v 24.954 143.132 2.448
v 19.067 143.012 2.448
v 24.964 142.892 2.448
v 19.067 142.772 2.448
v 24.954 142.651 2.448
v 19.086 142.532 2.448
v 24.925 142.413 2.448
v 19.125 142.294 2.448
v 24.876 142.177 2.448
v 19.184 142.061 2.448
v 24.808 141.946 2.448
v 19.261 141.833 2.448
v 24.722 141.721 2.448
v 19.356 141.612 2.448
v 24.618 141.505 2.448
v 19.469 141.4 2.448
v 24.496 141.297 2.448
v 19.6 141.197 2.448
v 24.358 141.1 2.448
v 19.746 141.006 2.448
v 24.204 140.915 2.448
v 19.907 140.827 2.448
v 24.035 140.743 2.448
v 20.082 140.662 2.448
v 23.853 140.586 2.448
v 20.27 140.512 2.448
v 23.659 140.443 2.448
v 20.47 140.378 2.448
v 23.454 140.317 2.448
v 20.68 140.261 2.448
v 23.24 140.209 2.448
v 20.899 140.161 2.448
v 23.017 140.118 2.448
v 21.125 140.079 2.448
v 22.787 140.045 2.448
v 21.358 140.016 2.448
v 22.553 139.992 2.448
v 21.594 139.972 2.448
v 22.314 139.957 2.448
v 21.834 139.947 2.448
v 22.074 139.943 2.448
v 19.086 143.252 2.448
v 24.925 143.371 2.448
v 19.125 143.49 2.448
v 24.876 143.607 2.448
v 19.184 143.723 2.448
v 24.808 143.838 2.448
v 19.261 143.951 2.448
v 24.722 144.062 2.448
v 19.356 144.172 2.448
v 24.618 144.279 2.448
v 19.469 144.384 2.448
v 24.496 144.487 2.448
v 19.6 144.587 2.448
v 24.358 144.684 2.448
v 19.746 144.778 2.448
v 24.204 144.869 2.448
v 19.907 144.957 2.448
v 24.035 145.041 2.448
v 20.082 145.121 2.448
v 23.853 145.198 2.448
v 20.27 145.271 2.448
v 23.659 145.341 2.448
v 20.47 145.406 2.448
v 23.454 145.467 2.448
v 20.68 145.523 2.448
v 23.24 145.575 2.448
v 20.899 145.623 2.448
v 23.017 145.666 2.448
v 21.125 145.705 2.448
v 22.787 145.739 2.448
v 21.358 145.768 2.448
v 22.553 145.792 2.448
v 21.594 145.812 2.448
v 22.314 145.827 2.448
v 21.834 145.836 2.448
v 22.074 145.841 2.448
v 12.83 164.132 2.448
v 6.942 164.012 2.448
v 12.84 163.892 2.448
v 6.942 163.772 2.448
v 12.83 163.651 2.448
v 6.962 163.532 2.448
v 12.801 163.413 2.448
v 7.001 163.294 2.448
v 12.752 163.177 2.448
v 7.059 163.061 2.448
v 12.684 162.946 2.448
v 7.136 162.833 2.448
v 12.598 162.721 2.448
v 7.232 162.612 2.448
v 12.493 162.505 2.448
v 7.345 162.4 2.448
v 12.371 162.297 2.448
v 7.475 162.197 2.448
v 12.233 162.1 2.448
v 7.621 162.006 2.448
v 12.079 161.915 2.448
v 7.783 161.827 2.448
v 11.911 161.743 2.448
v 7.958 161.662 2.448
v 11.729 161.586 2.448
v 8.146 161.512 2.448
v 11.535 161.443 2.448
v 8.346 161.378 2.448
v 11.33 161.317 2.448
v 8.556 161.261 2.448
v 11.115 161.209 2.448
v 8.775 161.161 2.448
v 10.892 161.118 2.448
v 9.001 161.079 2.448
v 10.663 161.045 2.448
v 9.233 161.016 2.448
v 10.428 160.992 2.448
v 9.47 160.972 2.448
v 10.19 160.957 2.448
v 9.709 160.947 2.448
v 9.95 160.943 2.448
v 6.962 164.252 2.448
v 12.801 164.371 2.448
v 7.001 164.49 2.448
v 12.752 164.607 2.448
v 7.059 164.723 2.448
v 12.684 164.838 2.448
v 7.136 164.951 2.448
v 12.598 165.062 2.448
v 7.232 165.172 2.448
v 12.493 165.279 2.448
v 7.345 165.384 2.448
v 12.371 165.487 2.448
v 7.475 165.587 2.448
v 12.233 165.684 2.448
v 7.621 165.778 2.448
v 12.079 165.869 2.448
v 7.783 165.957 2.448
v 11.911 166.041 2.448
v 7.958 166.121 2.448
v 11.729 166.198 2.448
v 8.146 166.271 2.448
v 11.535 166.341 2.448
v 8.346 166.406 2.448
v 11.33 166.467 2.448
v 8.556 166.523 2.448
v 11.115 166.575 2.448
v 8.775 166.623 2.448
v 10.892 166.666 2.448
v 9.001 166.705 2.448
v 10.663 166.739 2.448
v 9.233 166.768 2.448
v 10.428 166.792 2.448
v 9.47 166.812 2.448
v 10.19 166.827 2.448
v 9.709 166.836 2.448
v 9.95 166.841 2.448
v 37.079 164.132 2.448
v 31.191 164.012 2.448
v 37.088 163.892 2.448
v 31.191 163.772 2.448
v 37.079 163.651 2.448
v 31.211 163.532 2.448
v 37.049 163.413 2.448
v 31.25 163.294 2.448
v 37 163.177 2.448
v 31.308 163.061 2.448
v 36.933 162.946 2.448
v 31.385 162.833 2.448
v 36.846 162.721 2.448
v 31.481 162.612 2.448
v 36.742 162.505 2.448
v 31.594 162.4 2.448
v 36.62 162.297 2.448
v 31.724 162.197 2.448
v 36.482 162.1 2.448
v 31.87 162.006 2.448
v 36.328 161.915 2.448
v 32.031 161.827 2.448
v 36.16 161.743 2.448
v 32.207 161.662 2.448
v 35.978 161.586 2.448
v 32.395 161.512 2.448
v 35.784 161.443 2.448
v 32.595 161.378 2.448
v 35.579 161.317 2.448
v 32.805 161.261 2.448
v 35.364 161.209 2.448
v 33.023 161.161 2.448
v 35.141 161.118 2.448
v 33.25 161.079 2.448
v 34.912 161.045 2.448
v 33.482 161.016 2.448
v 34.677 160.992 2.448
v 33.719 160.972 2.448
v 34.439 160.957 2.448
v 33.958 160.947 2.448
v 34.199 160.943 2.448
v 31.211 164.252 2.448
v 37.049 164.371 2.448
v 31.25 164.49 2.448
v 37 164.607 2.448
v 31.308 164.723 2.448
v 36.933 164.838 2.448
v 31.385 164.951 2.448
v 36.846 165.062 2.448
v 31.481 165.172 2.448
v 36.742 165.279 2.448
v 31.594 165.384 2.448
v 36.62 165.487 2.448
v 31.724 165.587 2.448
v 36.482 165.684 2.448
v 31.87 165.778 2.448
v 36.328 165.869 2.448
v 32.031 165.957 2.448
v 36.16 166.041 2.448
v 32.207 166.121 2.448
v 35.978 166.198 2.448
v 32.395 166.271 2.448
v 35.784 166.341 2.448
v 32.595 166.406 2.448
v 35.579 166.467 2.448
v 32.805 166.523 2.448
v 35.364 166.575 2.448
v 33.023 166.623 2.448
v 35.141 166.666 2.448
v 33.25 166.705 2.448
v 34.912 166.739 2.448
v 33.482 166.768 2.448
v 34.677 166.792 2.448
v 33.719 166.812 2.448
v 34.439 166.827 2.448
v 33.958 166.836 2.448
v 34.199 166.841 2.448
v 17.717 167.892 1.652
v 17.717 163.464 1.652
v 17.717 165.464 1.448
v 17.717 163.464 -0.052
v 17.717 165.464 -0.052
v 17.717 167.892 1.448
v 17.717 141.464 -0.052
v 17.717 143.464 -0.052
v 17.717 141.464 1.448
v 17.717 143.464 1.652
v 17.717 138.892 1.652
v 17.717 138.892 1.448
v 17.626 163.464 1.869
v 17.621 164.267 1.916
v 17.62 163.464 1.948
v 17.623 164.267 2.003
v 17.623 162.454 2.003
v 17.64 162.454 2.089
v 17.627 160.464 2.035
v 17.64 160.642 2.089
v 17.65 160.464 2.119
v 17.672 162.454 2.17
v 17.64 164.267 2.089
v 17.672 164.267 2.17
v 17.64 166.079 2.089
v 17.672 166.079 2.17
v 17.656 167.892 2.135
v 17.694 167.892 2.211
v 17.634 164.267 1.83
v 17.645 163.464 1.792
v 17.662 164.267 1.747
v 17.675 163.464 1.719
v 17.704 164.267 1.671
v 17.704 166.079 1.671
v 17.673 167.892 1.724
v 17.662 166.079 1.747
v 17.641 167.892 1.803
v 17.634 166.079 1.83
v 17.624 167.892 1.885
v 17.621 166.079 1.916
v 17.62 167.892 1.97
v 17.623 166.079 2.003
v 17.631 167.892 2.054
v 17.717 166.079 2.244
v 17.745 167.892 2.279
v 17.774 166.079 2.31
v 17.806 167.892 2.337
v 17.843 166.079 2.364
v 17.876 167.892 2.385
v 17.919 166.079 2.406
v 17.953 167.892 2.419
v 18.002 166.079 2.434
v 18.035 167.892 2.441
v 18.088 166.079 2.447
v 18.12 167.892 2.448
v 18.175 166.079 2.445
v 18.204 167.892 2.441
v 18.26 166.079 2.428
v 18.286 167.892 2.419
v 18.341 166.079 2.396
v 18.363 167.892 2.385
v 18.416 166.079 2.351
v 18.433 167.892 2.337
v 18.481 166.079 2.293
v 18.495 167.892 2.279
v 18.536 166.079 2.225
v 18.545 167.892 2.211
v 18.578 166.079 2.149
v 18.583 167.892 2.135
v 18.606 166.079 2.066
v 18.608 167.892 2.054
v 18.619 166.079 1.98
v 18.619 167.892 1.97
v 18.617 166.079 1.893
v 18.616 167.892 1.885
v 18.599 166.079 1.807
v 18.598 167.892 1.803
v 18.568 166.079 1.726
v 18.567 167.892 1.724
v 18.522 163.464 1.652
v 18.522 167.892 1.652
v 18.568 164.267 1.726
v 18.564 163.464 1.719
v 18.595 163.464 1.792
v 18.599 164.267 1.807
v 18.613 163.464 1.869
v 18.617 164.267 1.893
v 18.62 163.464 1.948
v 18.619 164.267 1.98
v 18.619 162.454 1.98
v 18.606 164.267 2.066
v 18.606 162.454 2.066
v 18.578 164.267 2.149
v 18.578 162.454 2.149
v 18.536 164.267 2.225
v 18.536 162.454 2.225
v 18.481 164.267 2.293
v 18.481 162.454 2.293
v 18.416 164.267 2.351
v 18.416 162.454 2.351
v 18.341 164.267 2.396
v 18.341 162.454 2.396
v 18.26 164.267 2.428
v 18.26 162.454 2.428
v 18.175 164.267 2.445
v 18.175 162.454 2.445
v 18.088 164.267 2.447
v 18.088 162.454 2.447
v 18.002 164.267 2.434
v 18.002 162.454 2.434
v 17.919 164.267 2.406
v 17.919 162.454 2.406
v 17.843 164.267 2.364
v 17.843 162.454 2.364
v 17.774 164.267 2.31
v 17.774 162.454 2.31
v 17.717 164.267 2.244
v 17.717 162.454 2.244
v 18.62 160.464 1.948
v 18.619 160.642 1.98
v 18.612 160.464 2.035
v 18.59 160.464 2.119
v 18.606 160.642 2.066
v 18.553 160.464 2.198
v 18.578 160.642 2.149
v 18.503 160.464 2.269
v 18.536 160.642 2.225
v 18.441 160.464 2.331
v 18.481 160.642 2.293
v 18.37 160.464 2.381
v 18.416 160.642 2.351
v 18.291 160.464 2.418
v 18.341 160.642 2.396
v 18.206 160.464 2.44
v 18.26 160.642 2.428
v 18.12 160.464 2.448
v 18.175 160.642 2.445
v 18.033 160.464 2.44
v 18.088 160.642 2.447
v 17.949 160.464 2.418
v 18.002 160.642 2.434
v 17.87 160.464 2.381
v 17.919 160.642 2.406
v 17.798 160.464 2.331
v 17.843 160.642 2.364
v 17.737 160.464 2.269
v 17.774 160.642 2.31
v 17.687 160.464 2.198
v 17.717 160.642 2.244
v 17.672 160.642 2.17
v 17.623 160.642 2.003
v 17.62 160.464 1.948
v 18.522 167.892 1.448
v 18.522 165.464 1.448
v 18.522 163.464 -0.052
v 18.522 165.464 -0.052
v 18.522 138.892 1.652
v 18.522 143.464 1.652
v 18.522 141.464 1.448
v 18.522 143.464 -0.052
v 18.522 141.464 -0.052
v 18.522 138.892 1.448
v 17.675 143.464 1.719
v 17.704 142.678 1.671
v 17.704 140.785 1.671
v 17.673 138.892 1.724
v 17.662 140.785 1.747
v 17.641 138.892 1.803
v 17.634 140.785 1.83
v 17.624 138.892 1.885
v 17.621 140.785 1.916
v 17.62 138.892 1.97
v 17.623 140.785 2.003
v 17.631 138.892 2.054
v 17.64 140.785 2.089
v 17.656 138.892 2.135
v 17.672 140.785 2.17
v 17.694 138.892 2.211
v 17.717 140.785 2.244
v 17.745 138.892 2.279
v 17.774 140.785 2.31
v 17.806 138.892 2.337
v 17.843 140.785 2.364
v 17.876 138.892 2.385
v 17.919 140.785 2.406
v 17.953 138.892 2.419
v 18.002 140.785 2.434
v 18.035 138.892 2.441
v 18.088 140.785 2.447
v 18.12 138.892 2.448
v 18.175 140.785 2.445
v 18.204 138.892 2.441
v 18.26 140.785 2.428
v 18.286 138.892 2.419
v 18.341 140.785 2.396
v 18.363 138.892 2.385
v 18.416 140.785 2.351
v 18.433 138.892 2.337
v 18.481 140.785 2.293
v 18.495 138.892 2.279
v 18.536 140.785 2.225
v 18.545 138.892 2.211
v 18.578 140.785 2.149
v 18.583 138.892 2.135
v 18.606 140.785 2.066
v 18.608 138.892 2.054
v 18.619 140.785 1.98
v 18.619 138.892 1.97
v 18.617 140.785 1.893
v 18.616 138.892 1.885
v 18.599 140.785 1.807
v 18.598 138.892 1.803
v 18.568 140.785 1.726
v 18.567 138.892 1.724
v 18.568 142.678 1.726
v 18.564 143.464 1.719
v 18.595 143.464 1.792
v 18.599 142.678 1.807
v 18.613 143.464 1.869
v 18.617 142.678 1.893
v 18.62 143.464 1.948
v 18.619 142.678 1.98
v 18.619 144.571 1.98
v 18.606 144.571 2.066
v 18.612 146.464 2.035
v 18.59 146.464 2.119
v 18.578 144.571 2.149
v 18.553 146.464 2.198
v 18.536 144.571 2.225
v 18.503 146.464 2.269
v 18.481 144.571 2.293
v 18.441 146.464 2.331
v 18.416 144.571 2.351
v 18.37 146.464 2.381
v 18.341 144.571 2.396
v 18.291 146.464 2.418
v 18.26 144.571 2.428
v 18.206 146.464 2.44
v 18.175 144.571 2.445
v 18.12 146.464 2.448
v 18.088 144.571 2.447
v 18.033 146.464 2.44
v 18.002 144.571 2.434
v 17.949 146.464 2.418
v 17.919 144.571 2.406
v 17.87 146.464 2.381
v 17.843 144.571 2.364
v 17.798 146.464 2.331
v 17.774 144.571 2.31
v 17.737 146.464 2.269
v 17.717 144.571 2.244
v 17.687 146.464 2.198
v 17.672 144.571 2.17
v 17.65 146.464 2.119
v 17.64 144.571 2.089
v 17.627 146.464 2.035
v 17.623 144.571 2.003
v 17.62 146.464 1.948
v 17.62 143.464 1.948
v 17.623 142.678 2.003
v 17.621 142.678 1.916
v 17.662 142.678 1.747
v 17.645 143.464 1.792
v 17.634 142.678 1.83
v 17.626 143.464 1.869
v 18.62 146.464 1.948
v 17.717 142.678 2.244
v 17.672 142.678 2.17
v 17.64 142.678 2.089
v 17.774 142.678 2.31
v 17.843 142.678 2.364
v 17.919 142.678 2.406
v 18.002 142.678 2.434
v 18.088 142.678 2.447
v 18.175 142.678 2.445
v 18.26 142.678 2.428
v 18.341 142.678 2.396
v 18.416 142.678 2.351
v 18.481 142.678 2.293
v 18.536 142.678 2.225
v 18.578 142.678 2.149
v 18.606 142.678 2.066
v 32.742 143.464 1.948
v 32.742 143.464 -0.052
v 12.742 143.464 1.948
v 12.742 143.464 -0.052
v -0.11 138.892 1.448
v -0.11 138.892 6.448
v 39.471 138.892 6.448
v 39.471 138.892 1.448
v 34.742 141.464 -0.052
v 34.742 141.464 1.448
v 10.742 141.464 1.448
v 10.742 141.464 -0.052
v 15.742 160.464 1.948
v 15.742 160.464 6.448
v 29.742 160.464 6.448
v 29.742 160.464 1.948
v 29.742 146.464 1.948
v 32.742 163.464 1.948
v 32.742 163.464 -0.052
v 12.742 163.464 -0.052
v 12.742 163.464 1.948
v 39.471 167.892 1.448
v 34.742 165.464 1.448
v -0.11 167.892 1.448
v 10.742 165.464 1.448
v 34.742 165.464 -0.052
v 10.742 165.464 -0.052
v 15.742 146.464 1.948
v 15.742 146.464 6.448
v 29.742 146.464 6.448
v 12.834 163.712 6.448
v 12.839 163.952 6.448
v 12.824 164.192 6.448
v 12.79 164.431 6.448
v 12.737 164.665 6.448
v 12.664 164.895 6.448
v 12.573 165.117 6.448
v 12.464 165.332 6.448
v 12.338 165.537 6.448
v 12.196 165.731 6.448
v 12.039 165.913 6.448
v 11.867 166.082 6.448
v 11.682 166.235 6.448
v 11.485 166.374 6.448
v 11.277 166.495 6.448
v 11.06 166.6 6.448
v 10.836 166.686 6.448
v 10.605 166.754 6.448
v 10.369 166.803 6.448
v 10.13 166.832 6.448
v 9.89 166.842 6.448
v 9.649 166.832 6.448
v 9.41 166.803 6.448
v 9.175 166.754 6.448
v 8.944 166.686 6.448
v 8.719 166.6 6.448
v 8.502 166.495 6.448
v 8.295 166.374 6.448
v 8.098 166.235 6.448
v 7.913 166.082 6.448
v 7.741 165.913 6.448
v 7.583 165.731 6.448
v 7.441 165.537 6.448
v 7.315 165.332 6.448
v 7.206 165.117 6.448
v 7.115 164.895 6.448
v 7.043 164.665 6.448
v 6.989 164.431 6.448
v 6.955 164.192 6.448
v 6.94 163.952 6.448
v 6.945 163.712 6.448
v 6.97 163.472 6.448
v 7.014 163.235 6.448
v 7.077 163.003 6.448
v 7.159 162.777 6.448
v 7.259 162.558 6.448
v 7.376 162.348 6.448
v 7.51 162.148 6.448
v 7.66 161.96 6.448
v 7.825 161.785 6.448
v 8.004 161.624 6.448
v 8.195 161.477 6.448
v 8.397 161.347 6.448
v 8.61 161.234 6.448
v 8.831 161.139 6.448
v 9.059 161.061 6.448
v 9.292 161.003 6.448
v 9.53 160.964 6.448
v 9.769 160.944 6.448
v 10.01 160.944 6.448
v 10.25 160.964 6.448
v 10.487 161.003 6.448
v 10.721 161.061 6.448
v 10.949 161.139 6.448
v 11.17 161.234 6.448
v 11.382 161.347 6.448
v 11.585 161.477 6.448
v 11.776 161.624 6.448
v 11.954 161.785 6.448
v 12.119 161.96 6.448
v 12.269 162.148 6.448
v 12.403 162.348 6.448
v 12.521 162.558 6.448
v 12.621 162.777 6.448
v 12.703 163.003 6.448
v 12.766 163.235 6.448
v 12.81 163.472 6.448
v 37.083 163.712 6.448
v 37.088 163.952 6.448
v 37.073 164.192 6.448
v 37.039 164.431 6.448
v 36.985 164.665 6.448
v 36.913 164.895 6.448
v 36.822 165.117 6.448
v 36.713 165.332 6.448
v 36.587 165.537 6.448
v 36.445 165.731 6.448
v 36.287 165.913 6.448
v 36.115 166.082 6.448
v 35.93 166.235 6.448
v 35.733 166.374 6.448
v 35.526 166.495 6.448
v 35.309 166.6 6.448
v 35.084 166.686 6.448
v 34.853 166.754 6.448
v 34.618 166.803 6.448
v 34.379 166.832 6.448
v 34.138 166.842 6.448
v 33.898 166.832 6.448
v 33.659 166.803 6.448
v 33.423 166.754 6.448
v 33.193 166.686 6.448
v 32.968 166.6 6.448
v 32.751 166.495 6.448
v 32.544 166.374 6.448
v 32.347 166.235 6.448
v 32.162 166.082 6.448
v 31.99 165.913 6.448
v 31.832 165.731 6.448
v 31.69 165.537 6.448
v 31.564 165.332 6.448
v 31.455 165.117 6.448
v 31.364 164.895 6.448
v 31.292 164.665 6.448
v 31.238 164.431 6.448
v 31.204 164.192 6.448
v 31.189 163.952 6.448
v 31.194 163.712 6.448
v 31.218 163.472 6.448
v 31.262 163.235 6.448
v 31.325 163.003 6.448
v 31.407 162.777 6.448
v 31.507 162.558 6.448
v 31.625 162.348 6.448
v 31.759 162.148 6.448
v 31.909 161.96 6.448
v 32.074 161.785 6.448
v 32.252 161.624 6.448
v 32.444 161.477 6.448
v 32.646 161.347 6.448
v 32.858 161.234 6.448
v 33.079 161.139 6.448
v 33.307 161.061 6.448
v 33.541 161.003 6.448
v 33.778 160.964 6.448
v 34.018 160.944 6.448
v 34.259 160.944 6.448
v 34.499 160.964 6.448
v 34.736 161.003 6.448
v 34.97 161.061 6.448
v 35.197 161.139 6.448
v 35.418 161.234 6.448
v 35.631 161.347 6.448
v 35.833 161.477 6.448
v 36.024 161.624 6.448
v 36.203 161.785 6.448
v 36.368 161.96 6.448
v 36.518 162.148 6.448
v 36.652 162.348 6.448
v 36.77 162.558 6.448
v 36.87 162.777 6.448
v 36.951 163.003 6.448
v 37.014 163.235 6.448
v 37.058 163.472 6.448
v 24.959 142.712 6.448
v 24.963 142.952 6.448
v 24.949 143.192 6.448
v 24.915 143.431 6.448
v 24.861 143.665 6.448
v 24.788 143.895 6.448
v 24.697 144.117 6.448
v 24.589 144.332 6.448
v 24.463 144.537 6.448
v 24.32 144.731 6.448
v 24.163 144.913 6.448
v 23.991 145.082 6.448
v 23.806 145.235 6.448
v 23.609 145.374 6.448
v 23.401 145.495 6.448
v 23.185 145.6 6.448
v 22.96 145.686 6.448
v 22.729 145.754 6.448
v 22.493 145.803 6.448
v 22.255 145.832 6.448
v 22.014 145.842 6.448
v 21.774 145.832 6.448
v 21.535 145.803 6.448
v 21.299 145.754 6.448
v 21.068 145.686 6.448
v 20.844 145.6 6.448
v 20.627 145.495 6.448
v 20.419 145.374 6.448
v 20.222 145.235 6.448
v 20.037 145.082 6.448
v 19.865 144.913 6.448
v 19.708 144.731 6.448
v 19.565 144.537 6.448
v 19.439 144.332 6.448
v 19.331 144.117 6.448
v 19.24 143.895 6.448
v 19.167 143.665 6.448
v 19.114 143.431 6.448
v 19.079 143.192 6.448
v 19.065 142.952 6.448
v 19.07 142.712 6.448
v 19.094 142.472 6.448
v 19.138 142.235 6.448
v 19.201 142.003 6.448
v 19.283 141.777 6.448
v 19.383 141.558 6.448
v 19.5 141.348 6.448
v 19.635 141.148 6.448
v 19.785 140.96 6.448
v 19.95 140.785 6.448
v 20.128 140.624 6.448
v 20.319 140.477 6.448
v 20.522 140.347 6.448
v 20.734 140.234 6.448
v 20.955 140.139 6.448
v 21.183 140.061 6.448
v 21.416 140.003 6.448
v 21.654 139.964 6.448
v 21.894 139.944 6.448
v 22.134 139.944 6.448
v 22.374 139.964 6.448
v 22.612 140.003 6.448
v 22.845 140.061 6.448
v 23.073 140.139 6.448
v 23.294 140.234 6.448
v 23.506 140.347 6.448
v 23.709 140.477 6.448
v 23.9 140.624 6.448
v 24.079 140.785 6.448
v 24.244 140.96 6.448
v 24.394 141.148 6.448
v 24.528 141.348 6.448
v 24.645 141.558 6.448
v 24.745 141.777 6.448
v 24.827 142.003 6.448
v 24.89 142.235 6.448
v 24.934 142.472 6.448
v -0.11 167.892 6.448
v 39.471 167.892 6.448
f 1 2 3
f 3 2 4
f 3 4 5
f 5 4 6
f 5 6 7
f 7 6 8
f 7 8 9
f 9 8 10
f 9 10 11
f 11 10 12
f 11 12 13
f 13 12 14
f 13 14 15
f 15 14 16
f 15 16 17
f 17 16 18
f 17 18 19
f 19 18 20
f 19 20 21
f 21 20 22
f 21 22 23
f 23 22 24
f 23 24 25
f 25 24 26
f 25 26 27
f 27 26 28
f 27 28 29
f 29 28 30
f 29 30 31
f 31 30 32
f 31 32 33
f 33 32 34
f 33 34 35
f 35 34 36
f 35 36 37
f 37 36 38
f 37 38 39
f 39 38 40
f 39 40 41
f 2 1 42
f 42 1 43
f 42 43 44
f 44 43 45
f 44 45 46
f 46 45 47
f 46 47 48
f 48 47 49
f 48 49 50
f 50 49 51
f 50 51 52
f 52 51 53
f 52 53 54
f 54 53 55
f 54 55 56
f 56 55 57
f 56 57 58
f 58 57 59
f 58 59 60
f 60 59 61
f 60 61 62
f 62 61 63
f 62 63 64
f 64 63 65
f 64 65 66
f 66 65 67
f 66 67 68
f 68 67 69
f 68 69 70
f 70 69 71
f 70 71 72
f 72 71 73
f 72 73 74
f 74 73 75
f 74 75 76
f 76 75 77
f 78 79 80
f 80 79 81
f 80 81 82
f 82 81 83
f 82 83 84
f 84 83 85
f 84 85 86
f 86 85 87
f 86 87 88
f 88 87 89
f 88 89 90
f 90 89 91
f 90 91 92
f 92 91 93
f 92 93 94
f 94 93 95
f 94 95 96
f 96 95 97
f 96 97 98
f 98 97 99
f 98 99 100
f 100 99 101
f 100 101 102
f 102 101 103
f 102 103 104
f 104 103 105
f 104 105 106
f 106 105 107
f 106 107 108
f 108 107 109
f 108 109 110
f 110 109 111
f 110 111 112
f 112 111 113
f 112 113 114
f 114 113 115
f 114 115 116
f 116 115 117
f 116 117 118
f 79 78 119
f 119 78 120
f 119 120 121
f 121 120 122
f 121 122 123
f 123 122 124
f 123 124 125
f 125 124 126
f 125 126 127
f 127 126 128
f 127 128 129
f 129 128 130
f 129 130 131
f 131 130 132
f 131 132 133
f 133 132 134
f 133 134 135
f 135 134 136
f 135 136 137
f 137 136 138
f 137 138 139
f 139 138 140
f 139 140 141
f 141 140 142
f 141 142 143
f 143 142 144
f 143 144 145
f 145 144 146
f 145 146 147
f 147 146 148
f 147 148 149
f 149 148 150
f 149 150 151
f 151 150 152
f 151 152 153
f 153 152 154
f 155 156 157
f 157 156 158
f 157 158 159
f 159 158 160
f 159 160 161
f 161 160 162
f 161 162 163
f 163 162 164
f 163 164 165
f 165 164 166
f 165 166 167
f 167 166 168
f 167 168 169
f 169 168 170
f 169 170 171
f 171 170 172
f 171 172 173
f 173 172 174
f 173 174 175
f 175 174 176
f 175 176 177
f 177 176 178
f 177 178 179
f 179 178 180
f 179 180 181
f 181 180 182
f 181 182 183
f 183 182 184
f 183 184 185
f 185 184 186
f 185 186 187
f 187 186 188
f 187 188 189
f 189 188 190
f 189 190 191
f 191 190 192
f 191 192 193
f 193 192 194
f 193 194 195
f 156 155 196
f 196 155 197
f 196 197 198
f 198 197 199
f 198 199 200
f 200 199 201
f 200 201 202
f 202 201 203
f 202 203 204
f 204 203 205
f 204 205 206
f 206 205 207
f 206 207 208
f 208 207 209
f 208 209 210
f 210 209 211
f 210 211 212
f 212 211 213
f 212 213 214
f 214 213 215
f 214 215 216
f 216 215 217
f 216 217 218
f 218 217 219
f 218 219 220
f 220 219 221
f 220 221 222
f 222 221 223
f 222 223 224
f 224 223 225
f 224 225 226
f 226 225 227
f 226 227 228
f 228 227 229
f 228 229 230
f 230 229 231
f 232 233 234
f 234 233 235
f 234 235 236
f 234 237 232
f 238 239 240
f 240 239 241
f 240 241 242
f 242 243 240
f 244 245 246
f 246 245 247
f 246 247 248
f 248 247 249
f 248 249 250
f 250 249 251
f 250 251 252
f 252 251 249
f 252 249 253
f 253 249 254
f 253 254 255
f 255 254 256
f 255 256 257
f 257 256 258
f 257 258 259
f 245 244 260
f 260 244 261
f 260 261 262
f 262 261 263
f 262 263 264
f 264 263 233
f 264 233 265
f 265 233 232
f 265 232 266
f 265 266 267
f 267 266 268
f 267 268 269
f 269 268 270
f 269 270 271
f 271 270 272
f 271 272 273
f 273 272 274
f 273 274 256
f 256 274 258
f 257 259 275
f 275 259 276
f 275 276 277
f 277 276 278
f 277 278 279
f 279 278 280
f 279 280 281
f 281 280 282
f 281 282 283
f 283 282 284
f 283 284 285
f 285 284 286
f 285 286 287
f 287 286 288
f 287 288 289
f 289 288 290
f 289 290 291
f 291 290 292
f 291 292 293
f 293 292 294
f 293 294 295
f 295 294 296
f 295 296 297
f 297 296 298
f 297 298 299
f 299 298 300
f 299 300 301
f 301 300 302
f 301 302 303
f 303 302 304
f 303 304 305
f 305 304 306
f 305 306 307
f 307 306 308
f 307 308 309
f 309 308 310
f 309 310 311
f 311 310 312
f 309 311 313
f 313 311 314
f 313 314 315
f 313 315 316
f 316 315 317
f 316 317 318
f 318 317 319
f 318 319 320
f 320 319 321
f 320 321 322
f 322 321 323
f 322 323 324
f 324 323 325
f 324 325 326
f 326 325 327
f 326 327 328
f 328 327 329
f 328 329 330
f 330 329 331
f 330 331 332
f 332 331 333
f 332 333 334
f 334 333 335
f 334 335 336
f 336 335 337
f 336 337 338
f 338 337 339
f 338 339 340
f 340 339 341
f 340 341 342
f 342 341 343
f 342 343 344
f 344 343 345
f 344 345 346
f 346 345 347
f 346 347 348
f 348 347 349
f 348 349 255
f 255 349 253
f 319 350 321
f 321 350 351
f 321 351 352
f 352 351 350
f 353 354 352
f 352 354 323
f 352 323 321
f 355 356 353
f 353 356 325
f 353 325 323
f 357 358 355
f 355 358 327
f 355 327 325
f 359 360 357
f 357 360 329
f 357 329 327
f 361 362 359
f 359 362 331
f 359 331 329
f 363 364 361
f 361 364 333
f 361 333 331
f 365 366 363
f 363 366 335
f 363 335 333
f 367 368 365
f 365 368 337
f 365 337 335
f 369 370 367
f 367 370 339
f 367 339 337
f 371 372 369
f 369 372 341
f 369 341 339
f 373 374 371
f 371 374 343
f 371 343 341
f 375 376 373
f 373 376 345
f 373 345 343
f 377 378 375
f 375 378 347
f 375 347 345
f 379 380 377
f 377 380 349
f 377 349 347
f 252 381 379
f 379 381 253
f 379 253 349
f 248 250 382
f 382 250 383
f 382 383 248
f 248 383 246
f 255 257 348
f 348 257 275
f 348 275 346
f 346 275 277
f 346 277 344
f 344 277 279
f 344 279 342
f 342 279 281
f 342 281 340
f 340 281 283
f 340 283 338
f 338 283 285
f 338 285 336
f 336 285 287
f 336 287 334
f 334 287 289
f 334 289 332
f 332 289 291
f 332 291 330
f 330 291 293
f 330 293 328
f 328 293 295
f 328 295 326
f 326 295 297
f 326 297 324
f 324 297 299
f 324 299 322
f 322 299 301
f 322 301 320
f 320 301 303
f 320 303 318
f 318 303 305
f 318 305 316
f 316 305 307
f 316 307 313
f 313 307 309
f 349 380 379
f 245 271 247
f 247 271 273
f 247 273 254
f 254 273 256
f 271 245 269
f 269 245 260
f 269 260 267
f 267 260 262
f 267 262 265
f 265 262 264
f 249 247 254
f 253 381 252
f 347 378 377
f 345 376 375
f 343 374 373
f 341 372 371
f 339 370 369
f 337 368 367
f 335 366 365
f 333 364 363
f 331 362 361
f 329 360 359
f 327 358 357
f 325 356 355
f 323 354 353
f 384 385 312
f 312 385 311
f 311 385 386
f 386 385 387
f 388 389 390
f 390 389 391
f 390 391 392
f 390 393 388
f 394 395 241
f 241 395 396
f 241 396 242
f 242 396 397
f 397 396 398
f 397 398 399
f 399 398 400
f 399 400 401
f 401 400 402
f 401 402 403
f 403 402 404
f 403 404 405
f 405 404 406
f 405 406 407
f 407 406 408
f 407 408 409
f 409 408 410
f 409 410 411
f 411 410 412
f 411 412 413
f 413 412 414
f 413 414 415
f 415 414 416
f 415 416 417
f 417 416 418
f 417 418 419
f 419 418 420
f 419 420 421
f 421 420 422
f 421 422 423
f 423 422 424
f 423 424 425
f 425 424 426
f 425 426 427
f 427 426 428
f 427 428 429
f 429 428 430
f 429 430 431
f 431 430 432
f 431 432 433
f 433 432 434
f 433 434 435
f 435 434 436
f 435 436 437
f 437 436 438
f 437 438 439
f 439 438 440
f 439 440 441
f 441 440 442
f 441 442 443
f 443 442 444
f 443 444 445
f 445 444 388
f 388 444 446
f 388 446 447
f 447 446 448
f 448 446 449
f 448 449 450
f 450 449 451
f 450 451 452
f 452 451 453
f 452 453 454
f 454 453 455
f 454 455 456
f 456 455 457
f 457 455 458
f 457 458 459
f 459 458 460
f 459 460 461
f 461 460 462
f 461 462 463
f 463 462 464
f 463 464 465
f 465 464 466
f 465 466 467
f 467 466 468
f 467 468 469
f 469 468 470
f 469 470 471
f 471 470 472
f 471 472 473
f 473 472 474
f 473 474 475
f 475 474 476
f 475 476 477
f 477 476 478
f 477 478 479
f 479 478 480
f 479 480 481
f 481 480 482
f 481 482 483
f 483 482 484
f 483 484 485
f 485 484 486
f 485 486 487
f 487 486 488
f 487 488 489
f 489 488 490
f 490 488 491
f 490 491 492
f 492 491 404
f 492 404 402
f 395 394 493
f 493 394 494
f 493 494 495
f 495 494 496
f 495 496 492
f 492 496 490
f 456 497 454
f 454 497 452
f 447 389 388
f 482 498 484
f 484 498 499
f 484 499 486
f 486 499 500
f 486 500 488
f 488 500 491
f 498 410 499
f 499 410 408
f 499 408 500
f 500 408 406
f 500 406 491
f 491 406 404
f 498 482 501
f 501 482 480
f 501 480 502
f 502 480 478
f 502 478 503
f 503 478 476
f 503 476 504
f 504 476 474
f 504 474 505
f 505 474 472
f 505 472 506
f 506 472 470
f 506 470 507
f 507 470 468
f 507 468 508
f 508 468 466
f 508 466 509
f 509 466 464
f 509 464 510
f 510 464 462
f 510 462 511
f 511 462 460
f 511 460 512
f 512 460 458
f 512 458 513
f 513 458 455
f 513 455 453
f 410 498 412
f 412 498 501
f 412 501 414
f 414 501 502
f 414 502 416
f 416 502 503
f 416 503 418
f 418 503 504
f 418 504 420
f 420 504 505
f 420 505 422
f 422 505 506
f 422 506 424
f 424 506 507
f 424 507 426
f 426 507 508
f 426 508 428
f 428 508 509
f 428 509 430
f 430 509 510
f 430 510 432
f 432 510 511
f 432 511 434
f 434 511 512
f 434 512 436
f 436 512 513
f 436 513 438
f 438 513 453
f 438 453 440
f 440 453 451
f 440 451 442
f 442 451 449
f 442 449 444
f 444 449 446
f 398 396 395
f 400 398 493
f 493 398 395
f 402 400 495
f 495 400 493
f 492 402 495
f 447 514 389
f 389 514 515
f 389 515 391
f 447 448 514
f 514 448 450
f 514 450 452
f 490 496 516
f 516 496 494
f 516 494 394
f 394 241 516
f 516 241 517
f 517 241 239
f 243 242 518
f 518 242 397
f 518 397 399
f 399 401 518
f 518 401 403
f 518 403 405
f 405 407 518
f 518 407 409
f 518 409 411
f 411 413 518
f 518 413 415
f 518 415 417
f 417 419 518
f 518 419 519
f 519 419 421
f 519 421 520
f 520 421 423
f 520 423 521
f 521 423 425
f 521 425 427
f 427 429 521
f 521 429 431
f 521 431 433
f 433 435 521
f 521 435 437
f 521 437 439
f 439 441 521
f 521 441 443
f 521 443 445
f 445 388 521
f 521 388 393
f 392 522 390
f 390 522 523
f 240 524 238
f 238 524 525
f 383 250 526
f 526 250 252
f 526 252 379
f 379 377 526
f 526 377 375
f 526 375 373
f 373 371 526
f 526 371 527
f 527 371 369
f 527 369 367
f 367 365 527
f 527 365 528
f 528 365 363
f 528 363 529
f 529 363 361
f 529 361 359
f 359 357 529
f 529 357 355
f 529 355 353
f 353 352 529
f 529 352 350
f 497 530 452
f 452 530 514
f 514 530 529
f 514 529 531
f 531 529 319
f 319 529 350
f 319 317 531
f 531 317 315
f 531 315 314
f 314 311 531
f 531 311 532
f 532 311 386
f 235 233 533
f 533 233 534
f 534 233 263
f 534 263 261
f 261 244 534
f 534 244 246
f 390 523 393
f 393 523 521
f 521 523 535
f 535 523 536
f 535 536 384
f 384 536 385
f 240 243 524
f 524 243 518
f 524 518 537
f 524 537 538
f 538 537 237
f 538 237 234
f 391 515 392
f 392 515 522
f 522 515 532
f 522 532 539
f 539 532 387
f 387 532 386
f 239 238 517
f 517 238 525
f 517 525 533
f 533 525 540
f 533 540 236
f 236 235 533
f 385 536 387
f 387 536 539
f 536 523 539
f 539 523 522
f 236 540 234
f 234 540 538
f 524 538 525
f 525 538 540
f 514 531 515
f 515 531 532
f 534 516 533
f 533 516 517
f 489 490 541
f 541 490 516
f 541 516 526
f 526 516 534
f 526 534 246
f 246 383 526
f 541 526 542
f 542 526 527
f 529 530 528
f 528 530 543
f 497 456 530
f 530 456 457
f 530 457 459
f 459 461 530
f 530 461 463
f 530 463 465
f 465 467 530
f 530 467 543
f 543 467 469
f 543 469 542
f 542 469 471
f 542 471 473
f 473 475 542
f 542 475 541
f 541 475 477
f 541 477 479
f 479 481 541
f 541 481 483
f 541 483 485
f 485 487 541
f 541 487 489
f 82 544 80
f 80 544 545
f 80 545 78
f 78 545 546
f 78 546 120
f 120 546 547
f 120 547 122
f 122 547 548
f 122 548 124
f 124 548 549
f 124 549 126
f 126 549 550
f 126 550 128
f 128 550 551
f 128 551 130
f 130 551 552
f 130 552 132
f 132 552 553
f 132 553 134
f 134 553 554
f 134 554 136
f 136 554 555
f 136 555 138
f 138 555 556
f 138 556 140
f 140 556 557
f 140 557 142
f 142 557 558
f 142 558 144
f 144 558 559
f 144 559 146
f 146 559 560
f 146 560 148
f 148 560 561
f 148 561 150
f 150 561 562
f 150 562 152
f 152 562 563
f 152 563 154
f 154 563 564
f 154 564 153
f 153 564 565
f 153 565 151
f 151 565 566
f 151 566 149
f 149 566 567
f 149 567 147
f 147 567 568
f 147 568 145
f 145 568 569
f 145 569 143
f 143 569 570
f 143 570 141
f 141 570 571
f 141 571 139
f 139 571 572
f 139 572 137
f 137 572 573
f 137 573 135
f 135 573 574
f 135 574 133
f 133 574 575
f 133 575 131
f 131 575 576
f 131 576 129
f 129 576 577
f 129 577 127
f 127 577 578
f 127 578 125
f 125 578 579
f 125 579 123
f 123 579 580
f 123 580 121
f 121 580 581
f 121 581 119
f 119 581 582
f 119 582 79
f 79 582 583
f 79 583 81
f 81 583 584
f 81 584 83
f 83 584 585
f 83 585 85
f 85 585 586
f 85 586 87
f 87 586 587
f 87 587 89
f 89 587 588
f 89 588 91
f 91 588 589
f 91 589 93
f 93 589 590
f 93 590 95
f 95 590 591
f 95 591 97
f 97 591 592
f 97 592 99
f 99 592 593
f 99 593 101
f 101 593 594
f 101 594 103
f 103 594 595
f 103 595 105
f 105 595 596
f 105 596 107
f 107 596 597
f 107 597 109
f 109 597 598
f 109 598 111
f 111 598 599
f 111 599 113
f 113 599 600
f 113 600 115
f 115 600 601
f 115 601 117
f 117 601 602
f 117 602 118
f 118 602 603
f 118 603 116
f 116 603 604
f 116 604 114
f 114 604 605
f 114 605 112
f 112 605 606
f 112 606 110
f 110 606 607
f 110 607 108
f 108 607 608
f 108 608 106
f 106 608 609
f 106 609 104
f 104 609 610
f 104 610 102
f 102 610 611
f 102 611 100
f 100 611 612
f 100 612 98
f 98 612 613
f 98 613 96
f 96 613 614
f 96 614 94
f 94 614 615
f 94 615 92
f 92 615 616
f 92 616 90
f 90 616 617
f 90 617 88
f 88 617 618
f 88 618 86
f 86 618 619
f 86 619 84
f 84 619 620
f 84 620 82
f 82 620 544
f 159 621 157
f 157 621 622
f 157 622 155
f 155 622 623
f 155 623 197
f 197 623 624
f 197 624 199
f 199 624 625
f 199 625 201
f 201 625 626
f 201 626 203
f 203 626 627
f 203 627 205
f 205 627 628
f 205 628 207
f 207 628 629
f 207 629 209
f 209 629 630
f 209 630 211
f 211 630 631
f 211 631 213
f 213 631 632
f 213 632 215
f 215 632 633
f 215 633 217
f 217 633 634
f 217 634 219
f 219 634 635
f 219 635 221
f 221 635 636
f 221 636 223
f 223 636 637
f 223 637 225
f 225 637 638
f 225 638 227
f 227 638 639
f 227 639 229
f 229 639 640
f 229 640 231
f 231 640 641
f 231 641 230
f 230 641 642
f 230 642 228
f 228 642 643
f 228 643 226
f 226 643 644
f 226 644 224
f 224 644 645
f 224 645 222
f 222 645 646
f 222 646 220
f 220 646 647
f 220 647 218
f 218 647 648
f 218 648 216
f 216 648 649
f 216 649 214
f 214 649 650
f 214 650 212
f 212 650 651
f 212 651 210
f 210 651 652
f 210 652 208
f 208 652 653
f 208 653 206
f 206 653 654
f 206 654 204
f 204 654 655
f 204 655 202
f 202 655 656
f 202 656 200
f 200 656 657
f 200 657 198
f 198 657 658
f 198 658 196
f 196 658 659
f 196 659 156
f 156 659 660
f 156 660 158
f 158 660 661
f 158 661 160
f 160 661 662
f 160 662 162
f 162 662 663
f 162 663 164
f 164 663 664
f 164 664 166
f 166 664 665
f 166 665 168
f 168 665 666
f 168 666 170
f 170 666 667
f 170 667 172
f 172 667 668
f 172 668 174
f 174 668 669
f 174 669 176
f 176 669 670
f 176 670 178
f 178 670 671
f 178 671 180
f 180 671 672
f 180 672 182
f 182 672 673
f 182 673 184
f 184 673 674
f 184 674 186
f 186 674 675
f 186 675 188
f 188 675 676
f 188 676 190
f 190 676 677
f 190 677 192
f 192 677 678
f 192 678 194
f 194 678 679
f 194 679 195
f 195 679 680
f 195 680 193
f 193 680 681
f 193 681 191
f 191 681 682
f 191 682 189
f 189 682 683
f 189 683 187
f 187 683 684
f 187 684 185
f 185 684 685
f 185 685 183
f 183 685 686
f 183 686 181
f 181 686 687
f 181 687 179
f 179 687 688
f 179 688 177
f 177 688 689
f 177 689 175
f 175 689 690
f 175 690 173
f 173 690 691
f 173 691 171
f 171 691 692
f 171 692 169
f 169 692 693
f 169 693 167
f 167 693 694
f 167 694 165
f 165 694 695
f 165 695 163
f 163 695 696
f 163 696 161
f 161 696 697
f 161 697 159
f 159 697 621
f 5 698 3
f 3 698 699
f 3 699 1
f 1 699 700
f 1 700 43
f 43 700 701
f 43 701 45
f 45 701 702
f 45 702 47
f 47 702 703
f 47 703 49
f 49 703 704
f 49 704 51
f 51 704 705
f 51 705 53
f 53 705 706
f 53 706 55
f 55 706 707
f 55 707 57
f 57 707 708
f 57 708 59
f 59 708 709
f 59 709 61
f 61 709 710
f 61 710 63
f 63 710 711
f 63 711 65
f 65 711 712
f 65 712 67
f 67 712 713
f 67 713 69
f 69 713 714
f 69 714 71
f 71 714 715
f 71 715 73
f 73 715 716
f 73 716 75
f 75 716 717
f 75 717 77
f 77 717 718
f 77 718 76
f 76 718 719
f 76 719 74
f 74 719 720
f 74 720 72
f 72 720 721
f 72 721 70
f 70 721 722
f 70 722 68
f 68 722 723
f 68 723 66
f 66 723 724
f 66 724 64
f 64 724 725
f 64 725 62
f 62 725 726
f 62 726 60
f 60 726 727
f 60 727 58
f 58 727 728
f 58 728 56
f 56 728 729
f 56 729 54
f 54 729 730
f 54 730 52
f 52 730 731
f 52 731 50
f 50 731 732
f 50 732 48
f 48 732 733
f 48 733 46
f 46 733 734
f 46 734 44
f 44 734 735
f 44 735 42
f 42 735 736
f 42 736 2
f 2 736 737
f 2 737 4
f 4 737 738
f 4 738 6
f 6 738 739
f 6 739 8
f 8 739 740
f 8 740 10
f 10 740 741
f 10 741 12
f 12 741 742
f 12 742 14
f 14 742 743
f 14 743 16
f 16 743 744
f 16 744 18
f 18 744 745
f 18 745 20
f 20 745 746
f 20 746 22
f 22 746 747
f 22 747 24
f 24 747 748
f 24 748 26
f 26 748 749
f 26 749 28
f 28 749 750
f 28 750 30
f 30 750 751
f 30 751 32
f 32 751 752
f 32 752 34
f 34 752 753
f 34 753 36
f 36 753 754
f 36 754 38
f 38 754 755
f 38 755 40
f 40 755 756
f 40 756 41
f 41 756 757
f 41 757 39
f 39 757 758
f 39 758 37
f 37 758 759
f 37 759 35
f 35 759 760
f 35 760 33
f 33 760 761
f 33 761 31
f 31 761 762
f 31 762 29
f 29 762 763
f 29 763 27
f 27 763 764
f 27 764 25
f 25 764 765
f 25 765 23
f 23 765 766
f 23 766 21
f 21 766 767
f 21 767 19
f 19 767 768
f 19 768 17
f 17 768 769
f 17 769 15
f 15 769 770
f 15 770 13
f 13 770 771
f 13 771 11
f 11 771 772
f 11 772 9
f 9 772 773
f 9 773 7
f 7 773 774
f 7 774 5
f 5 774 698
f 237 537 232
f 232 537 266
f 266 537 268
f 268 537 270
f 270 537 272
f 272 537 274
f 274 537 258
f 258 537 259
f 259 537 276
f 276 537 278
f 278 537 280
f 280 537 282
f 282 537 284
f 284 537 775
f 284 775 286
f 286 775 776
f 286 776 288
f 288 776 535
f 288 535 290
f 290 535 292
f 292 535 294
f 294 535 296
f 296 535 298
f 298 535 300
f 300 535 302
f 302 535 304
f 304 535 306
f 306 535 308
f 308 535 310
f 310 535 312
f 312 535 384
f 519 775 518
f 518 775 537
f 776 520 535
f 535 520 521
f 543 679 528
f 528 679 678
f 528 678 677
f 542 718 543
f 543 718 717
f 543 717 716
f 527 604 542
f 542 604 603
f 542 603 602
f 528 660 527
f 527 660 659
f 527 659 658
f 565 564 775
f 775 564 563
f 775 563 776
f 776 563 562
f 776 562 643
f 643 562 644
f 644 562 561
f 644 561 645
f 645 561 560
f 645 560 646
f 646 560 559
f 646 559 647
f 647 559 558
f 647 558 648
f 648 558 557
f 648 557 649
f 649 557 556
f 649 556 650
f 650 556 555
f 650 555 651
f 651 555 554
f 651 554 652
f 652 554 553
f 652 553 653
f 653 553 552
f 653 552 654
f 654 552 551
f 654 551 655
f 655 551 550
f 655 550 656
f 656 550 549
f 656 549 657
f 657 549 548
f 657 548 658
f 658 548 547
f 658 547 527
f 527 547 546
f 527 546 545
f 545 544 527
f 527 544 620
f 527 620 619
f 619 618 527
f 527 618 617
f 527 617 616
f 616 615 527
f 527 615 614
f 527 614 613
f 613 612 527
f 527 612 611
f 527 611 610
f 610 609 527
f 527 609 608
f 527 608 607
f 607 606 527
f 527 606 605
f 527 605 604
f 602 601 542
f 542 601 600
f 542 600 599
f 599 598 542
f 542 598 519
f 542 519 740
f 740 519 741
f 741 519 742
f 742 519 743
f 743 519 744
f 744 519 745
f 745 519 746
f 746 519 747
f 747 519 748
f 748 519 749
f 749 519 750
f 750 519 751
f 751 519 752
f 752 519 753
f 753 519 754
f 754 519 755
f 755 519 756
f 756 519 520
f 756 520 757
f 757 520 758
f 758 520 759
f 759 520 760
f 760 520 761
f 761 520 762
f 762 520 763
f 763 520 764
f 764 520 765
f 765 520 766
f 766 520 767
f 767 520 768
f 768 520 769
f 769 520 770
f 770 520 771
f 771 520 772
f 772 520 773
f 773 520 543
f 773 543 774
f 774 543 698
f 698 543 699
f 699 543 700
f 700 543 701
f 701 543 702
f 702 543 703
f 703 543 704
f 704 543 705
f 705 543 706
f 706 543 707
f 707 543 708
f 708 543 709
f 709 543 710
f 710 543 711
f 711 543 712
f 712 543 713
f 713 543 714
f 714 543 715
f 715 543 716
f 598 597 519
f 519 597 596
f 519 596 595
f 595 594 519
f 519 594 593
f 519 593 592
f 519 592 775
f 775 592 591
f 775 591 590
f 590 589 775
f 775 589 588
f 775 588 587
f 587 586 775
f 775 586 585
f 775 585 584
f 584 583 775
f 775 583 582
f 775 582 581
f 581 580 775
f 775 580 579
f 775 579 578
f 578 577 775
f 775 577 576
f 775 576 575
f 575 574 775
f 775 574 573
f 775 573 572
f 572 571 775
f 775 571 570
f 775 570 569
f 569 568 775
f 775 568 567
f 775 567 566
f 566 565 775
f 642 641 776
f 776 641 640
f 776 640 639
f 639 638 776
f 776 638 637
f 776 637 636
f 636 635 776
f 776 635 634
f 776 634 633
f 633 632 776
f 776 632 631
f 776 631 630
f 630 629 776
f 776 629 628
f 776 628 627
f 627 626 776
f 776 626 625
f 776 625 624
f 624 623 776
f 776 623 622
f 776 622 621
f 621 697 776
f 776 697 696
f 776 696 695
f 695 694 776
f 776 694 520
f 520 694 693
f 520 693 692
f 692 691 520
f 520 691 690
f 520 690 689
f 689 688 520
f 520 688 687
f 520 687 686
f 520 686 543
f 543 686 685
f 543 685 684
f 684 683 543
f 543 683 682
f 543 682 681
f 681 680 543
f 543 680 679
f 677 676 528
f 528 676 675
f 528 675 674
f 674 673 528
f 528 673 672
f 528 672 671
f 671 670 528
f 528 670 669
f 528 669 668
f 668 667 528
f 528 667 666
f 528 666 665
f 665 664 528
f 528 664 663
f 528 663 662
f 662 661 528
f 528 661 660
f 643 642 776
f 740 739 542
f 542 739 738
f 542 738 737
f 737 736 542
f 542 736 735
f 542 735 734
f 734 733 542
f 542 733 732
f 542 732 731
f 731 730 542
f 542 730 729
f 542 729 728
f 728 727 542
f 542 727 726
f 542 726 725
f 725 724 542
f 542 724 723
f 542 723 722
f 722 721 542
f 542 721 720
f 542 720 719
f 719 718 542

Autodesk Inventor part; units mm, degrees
ref_plane "YZ Plane" through (0, 0, 0) normal (1, 0, 0) x (0, 1, 0)
ref_plane "XZ Plane" through (0, 0, 0) normal (0, 1, 0) x (-1, 0, 0)
ref_plane "XY Plane" through (0, 0, 0) normal (0, 0, 1) x (1, 0, 0)
ref_plane "Work Plane1" through (52.5141, 202.7033, 6.4479) normal (0, 0, -1) x (0, 1, 0)
sketch "Sketch1" plane through (52.5141, 202.7033, 6.4479) normal (0, 0, -1) x (0, 1, 0)
  circle A0 centre (-59.8114, -30.5) radius 1.4 construction
  circle A1 centre (-38.8114, -18.3756) radius 1.4 projected
  circle A2 centre (-38.8114, -42.6244) radius 1.4 construction
  circle A3 centre (41, 0) radius 1.65 projected
  circle A4 centre (-9, 0) radius 1.65 projected
  circle A5 centre (-9, 50) radius 1.65 projected
  circle A6 centre (41, 50) radius 1.65 projected
  circle A7 centre (16, 50) radius 1.65 projected
  circle A8 centre (-9, 25) radius 1.65 projected
  circle A9 centre (16, 0) radius 1.65 projected
  circle A10 centre (41, 25) radius 1.65 projected
  line L0 (80, 55) -> (-80, 55) projected
  line L1 (-80, 55) -> (-80, -55) projected
  line L2 (-80, -55) -> (80, -55) projected
  line L3 (80, -55) -> (80, 55) projected
  line L4 (-36.5, 0) -> (-36.5, -50) projected
  line L5 (-14, 0) -> (-36.5, 0) projected
  line L6 (-14, -5) -> (-14, 0) projected
  line L7 (72, -5) -> (-14, -5) projected
  line L8 (72, -50) -> (72, -5) projected
  line L9 (-36.5, -50) -> (72, -50) projected
  line L10 (-4, 45) -> (-4, 5) projected
  line L11 (36, 45) -> (-4, 45) projected
  line L12 (36, 5) -> (36, 45) projected
  line L13 (-4, 5) -> (36, 5) projected
  line L14 (-64.5989, -17.0433) -> (-64.5989, -57.0433) construction
  line L15 (-64.5989, -57.0433) -> (-34.5989, -57.0433) construction
  line L16 (-34.5989, -57.0433) -> (-34.5989, -17.0433) construction
  line L17 (-34.5989, -17.0433) -> (-64.5989, -17.0433) construction
  line L18 (-34.8114, -13.0433) -> (-63.8114, -13.0433)
  line L19 (-63.8114, -13.0433) -> (-63.8114, -52.6244)
  line L20 (-63.8114, -52.6244) -> (-34.8114, -52.6244)
  line L21 (-34.8114, -52.6244) -> (-34.8114, -13.0433)
  circle A11 centre (-59.8114, -30.5) radius 2.95
  circle A12 centre (-38.8114, -18.3756) radius 2.95
  circle A13 centre (-38.8114, -42.6244) radius 2.95 construction
  line L22 (-36.5, -35.1157) -> (-41.75, -35.1157) construction
  line L23 (-41.75, -35.1157) -> (-41.75, -38.5657) construction
  line L24 (-41.75, -38.5657) -> (-56.86, -38.5657) construction
  line L25 (-56.86, -38.5657) -> (-56.86, -35.1157) construction
  line L26 (-56.86, -35.1157) -> (-60.26, -35.1157) construction
  line L27 (-60.26, -35.1157) -> (-60.26, -52.0657) construction
  line L28 (-60.26, -52.0657) -> (-36.5, -52.0657) construction
  line L29 (-36.5, -52.0657) -> (-36.5, -35.1157) construction
  line L30 (-41.75, -28.3657) -> (-36.5, -28.3657) construction
  line L31 (-36.5, -28.3657) -> (-36.5, -25.0657) construction
  line L32 (-36.5, -25.0657) -> (-60.26, -25.0657) construction
  line L33 (-60.26, -25.0657) -> (-60.26, -28.3657) construction
  line L34 (-60.26, -28.3657) -> (-56.86, -28.3657) construction
  line L35 (-56.86, -28.3657) -> (-56.86, -27.0942) construction
  line L36 (-56.86, -27.0942) -> (-41.75, -27.0942) construction
  line L37 (-41.75, -27.0942) -> (-41.75, -28.3657) construction
  line L38 (-56.86, -35.1157) -> (-60.26, -35.1157) construction
  line L39 (-56.86, -38.5657) -> (-56.86, -35.1157) construction
  line L40 (-41.75, -38.5657) -> (-56.86, -38.5657) construction
  line L41 (-41.75, -35.1157) -> (-41.75, -38.5657) construction
  line L42 (-36.5, -35.1157) -> (-41.75, -35.1157) construction
  line L43 (-36.5, -35.05) -> (-36.5, -35.1157) construction
  line L44 (-36.5, -35.05) -> (-56.86, -35.05) construction
  line L45 (-36.5, -34.78) -> (-36.5, -35.05) construction
  line L46 (-36.5, -34.78) -> (-56.86, -34.78) construction
  line L47 (-36.5, -34.51) -> (-36.5, -34.78) construction
  line L48 (-36.5, -34.51) -> (-56.86, -34.51) construction
  line L49 (-36.5, -34.24) -> (-36.5, -34.51) construction
  line L50 (-36.5, -34.24) -> (-56.86, -34.24) construction
  line L51 (-36.5, -33.97) -> (-36.5, -34.24) construction
  line L52 (-36.5, -33.97) -> (-56.86, -33.97) construction
  line L53 (-36.5, -33.7) -> (-36.5, -33.97) construction
  line L54 (-36.5, -33.7) -> (-56.86, -33.7) construction
  line L55 (-36.5, -33.43) -> (-36.5, -33.7) construction
  line L56 (-36.5, -33.43) -> (-56.86, -33.43) construction
  line L57 (-36.5, -33.16) -> (-36.5, -33.43) construction
  line L58 (-36.5, -33.16) -> (-56.86, -33.16) construction
  line L59 (-36.5, -32.89) -> (-36.5, -33.16) construction
  line L60 (-36.5, -32.89) -> (-56.86, -32.89) construction
  line L61 (-36.5, -32.62) -> (-36.5, -32.89) construction
  line L62 (-36.5, -32.62) -> (-56.86, -32.62) construction
  line L63 (-36.5, -32.35) -> (-36.5, -32.62) construction
  line L64 (-36.5, -32.35) -> (-56.86, -32.35) construction
  line L65 (-36.5, -32.08) -> (-36.5, -32.35) construction
  line L66 (-36.5, -32.08) -> (-56.86, -32.08) construction
  line L67 (-36.5, -31.81) -> (-36.5, -32.08) construction
  line L68 (-36.5, -31.81) -> (-56.86, -31.81) construction
  line L69 (-36.5, -31.54) -> (-36.5, -31.81) construction
  line L70 (-36.5, -31.54) -> (-56.86, -31.54) construction
  line L71 (-36.5, -31.27) -> (-36.5, -31.54) construction
  line L72 (-36.5, -31.27) -> (-56.86, -31.27) construction
  line L73 (-36.5, -31) -> (-36.5, -31.27) construction
  line L74 (-36.5, -31) -> (-56.86, -31) construction
  line L75 (-36.5, -30.73) -> (-36.5, -31) construction
  line L76 (-36.5, -30.73) -> (-56.86, -30.73) construction
  line L77 (-36.5, -30.46) -> (-36.5, -30.73) construction
  line L78 (-36.5, -30.46) -> (-56.86, -30.46) construction
  line L79 (-36.5, -30.19) -> (-36.5, -30.46) construction
  line L80 (-36.5, -30.19) -> (-56.86, -30.19) construction
  line L81 (-36.5, -29.92) -> (-36.5, -30.19) construction
  line L82 (-36.5, -29.92) -> (-56.86, -29.92) construction
  line L83 (-36.5, -29.65) -> (-36.5, -29.92) construction
  line L84 (-36.5, -29.65) -> (-56.86, -29.65) construction
  line L85 (-36.5, -29.38) -> (-36.5, -29.65) construction
  line L86 (-36.5, -29.38) -> (-56.86, -29.38) construction
  line L87 (-36.5, -29.11) -> (-36.5, -29.38) construction
  line L88 (-36.5, -29.11) -> (-56.86, -29.11) construction
  line L89 (-36.5, -28.84) -> (-36.5, -29.11) construction
  line L90 (-36.5, -28.84) -> (-56.86, -28.84) construction
  line L91 (-36.5, -28.3657) -> (-36.5, -28.84) construction
  line L92 (-41.75, -28.3657) -> (-36.5, -28.3657) construction
  line L93 (-41.75, -27.0942) -> (-41.75, -28.3657) construction
  line L94 (-56.86, -27.0942) -> (-41.75, -27.0942) construction
  line L95 (-56.86, -28.3657) -> (-56.86, -27.0942) construction
  line L96 (-60.26, -28.3657) -> (-56.86, -28.3657) construction
  line L97 (-60.26, -35.1157) -> (-60.26, -28.3657) construction
  line L98 (-60.26, -25.0657) -> (-36.5, -25.0657) construction
  line L99 (-36.5, -25.0657) -> (-36.5, -52.0657) construction
  line L100 (-60.26, -52.0657) -> (-60.26, -25.0657) construction
  line L101 (-57.1632, -22.5233) -> (-33.4032, -22.5233) construction
  line L102 (-33.4032, -22.5233) -> (-33.4032, -49.5233) construction
  line L103 (-33.4032, -49.5233) -> (-57.1632, -49.5233) construction
  line L104 (-57.1632, -49.5233) -> (-57.1632, -22.5233) construction
  circle A14 centre (-38.8114, -42.6244) radius 2.95
  point P0 (-202.7033, -52.5141)
  point P1 (-56.7146, -27.9576)
  dimension "d0" = 4
  dimension "d2" = 4
  dimension "d3" = 4
  dimension "d4" = 5.9
  dimension "d5" = 5.9
  dimension "d6" = 5.9
  dimension "d10" = 10
extrude "Extrusion1" add sketch "Sketch1" along normal blind 2.5 contours L18 L21 L9 L4 A14 A12 | L4 A12 A14 L9 L21 L20 L19 L18
sketch "Sketch2" plane through (52.5141, 202.7033, 3.9479) normal (0, 0, -1) x (-1, 0, 0)
  circle A0 centre (42.6244, -38.8114) radius 2.95 projected
  circle A1 centre (18.3756, -38.8114) radius 2.95 projected
  circle A2 centre (30.5, -59.8114) radius 2.95 projected
  line L0 (13.0433, -34.8114) -> (13.0433, -63.8114) projected
  line L1 (13.0433, -63.8114) -> (52.6244, -63.8114) projected
  line L2 (52.6244, -63.8114) -> (52.6244, -34.8114) projected
  line L3 (52.6244, -34.8114) -> (13.0433, -34.8114) projected
  point P0 (52.5141, -202.7033)
extrude "Extrusion2" add sketch "Sketch2" along normal blind 2.5 contours A0 | A1 | A2 | L3 L2 L1 L0
sketch "Sketch6" plane through (52.5141, 202.7033, 1.4479) normal (0, 0, -1) x (-1, 0, 0)
  line L0 (13.0433, -34.8114) -> (13.0433, -63.8114) projected
  line L1 (13.0433, -63.8114) -> (52.6244, -63.8114) projected
  line L2 (52.6244, -63.8114) -> (52.6244, -34.8114) projected
  line L3 (52.6244, -34.8114) -> (13.0433, -34.8114) projected
  line L4 (36.772, -42.2392) -> (22.772, -42.2392)
  line L5 (22.772, -42.2392) -> (22.772, -56.2392)
  line L6 (22.772, -56.2392) -> (36.772, -56.2392)
  line L7 (36.772, -56.2392) -> (36.772, -42.2392)
  point P0 (52.5141, -202.7033)
  dimension "d33" = 14
  dimension "d34" = 14
extrude "Extrusion6" cut sketch "Sketch6" against normal through all contours L7 L6 L5 L4
sketch "Sketch7" plane through (52.5141, 202.7033, 1.4479) normal (0, 0, -1) x (-1, 0, 0)
  line L0 (22.772, -56.2392) -> (22.772, -42.2392) projected
  line L1 (22.772, -42.2392) -> (36.772, -42.2392) projected
  line L2 (36.772, -42.2392) -> (36.772, -56.2392) projected
  line L3 (36.772, -56.2392) -> (22.772, -56.2392) projected
  line L4 (13.0433, -34.8114) -> (13.0433, -63.8114) projected
  line L5 (13.0433, -63.8114) -> (52.6244, -63.8114) projected
  line L6 (52.6244, -63.8114) -> (52.6244, -34.8114) projected
  line L7 (52.6244, -34.8114) -> (13.0433, -34.8114) projected
  line L8 (39.772, -59.2392) -> (39.772, -39.2392)
  line L9 (39.772, -39.2392) -> (19.772, -39.2392)
  line L10 (19.772, -39.2392) -> (19.772, -59.2392)
  line L11 (19.772, -59.2392) -> (39.772, -59.2392)
  point P0 (52.5141, -202.7033)
  dimension "d37" = 20
extrude "Extrusion7" cut sketch "Sketch7" against normal blind 0.5 contours L11 L10 L9 L8
sketch "Sketch8" plane through (52.5141, 202.7033, 1.4479) normal (0, 0, -1) x (-1, 0, 0)
  line L0 (19.772, -39.2392) -> (39.772, -39.2392) projected
  line L1 (39.772, -39.2392) -> (39.772, -59.2392) projected
  line L2 (39.772, -59.2392) -> (19.772, -59.2392) projected
  line L3 (19.772, -59.2392) -> (19.772, -39.2392) projected
  line L4 (13.0433, -34.8114) -> (13.0433, -63.8114) projected
  line L5 (13.0433, -63.8114) -> (52.6244, -63.8114) projected
  line L6 (52.6244, -63.8114) -> (52.6244, -34.8114) projected
  line L7 (52.6244, -34.8114) -> (13.0433, -34.8114) projected
  line L8 (41.772, -61.2392) -> (41.772, -37.2392)
  line L9 (41.772, -37.2392) -> (17.772, -37.2392)
  line L10 (17.772, -37.2392) -> (17.772, -61.2392)
  line L11 (17.772, -61.2392) -> (41.772, -61.2392)
  point P0 (52.5141, -202.7033)
  dimension "d40" = 2
extrude "Extrusion8" add sketch "Sketch8" along normal blind 1.5 contours L11 L10 L9 L8
sketch "Sketch9" plane through (-0.1103, 138.8919, 6.4479) normal (0, -1, 0) x (1, 0, 0)
  line L0 (12.8524, -4.5) -> (32.8524, -4.5) projected
  line L1 (34.8524, -6.5) -> (10.8524, -6.5) projected
  arc A0 (18.6327, -4.7963) -> (17.8272, -4.7963) centre (18.2299, -4.5) ccw
  line L2 (18.6327, -4.7963) -> (17.8272, -4.7963)
  line L3 (17.8272, -4.7963) -> (17.8272, -6.9787)
  line L4 (17.8272, -6.9787) -> (18.6327, -6.9787)
  line L5 (18.6327, -6.9787) -> (18.6327, -4.7963)
  point P0 (0.1103, -6.4479)
  dimension "d43" = 1
extrude "Extrusion9" cut sketch "Sketch9" against normal through all
sketch "Sketch10" plane through (52.5141, 202.7033, 6.4479) normal (0, 0, 1) x (1, 0, 0)
  circle A0 centre (-42.6244, -38.8114) radius 2.95 projected
  circle A1 centre (-30.5, -59.8114) radius 2.95 projected
  circle A2 centre (-18.3756, -38.8114) radius 2.95 projected
  point P0 (-52.5141, -202.7033)
extrude "Extrusion10" cut sketch "Sketch10" against normal blind 4
properties part number "cellSTORM_v5_chiptray_old_0"
